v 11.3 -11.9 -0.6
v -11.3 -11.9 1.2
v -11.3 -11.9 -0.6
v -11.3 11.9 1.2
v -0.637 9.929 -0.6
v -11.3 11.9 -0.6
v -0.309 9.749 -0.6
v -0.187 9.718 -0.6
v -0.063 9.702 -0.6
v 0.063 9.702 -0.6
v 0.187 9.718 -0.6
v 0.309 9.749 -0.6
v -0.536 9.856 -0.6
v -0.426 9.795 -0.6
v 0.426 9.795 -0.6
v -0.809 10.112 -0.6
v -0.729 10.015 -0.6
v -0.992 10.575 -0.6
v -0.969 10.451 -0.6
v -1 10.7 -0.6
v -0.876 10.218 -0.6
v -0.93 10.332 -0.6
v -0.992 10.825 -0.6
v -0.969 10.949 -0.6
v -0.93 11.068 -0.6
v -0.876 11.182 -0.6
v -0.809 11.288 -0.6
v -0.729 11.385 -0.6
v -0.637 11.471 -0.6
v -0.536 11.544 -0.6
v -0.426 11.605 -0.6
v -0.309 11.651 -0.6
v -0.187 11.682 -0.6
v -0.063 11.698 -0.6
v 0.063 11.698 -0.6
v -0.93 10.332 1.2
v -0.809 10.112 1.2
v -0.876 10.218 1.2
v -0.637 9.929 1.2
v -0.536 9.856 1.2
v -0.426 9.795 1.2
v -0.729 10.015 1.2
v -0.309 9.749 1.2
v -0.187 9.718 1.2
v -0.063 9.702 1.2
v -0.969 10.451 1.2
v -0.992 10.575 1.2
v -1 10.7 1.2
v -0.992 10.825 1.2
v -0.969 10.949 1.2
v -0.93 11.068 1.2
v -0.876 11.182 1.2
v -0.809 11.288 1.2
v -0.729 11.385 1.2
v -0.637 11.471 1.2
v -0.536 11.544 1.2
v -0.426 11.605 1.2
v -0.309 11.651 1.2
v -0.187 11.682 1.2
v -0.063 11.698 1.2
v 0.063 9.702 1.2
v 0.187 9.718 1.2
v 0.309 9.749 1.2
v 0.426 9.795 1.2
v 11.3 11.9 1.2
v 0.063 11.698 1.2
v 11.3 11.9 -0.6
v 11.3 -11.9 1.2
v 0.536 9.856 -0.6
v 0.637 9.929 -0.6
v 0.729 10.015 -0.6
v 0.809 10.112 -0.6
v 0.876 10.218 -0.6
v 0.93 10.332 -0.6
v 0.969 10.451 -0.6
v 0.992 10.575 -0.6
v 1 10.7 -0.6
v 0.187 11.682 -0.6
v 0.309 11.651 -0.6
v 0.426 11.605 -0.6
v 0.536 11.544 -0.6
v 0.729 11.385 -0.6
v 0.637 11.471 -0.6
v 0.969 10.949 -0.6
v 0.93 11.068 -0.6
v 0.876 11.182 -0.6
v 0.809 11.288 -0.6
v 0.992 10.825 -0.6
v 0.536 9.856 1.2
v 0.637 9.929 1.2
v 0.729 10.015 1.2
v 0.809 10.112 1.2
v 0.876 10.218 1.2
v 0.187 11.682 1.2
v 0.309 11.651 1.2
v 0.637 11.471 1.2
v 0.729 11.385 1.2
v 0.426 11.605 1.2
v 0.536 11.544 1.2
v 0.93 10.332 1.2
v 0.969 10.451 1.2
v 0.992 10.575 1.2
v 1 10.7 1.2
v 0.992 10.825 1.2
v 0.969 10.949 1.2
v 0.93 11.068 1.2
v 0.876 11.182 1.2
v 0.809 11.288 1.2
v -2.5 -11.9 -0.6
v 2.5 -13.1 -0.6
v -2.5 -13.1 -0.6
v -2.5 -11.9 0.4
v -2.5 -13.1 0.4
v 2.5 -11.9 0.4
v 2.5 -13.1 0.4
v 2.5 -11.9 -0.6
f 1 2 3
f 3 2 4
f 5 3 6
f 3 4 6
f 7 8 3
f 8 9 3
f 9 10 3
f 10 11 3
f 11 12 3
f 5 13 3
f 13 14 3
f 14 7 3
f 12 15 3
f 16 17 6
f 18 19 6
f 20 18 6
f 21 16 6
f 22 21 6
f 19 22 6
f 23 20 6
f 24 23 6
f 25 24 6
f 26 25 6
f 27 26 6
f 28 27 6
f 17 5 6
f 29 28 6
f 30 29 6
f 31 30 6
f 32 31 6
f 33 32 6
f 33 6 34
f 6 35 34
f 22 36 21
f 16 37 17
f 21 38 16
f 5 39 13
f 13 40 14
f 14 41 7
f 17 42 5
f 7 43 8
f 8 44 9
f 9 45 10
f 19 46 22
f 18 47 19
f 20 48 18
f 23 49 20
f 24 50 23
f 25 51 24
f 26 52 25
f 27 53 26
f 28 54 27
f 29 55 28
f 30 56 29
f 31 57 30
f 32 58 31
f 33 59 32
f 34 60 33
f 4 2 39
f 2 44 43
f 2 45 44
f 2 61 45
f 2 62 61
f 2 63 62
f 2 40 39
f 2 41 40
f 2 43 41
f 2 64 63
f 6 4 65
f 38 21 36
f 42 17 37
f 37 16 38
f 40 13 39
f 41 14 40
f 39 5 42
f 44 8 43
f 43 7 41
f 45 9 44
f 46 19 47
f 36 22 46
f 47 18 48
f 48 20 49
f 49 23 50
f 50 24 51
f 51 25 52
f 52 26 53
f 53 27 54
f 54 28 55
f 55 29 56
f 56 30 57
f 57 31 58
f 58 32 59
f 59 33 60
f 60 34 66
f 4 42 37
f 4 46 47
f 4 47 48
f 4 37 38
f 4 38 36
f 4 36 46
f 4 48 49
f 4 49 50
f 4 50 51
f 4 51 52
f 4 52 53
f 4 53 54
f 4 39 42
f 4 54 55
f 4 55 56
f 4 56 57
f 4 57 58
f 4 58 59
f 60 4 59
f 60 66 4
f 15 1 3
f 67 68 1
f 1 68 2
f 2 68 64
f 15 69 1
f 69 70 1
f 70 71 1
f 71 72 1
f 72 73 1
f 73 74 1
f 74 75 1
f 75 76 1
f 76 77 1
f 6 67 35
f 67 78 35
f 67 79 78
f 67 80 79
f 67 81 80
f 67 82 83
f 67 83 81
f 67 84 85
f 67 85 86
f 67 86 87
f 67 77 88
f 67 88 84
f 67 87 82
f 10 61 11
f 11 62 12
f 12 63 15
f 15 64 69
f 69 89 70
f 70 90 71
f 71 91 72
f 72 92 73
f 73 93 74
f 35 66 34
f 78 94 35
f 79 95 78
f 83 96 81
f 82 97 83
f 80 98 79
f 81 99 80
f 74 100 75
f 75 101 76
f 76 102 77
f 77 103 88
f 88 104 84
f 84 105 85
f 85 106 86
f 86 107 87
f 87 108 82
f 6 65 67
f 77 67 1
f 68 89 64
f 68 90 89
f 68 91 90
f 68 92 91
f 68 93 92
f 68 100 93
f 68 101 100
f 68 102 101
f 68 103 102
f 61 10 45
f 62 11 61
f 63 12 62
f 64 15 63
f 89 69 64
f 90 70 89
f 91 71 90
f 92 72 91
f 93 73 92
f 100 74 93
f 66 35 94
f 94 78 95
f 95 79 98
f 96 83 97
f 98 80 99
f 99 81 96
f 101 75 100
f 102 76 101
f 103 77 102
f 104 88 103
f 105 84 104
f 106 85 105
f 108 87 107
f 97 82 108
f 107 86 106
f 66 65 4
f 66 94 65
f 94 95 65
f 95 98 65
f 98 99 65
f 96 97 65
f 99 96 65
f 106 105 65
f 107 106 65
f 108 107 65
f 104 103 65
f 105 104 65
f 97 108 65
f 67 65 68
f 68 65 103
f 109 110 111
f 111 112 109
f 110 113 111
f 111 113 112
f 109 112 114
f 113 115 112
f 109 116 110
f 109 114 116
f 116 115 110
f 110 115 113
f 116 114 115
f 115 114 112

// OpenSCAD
// ============================================================
// 클로저 하우징 - 평면도(XY, 정면에서 본 모습)
// 뚫린 면(-X쪽)에 들어갈 평판. 하단 돌출 탭이 ERM 면과 맞물림.
// ============================================================

module closure_housing() {
    lid_w = 22.6;  // 평판 가로
    lid_h = 23.8;  // 평판 세로
    lid_t = 1.8;   // 평판 두께 (1.2 -> 1.8, 0.6mm 증가)
    plate_grow = lid_t - 1.2; // 두께 증가분 (0.6mm) - 바깥쪽(outer, z 음의 방향)으로 확장

    hole_d          = 2;   // 구멍 지름
    hole_y_from_top = 1.2; // 윗변 - 구멍 중심 거리 (가장 가까운 면의 모서리와 1.2mm 차이)

    hole_x = 0;                       // 가운데 정렬
    hole_y = lid_h / 2 - hole_y_from_top;

    tab_w    = 5;   // 하단 돌출부 가로
    tab_len  = 1.2; // 하단 돌출부가 평판 아래로 튀어나온 길이
    tab_z    = 1.0; // 돌출부의 Z방향 두께 (평판 바깥쪽 면과 밑면이 딱 맞음, 안쪽으로 0.8mm 단차)

    echo("[Closure] hole_x =", hole_x, " hole_y =", hole_y);

    // 메인 평판 (구멍 1개, 가운데). 안쪽면(z=1.2)은 고정, 바깥쪽면이 0.6mm 더 나감(z=-0.6)
    color("gray")
        translate([0, 0, -plate_grow])
            linear_extrude(height = lid_t)
                difference() {
                    square([lid_w, lid_h], center = true);
                    translate([hole_x, hole_y]) circle(d = hole_d, $fn = 50);
                }

    // 하단 돌출 탭 (평판 아래쪽 가장자리에서 1.2mm 튀어나옴).
    // Z방향으로는 평판 바깥쪽 면(z=-plate_grow)과 밑면이 딱 맞고, 두께는 1mm만
    // (평판 두께 1.8mm 중 안쪽으로 0.8mm는 단차로 비움)
    color("SlateGray")
        translate([0, -lid_h / 2 - tab_len / 2, -plate_grow])
            linear_extrude(height = tab_z)
                square([tab_w, tab_len], center = true);
}

closure_housing();
